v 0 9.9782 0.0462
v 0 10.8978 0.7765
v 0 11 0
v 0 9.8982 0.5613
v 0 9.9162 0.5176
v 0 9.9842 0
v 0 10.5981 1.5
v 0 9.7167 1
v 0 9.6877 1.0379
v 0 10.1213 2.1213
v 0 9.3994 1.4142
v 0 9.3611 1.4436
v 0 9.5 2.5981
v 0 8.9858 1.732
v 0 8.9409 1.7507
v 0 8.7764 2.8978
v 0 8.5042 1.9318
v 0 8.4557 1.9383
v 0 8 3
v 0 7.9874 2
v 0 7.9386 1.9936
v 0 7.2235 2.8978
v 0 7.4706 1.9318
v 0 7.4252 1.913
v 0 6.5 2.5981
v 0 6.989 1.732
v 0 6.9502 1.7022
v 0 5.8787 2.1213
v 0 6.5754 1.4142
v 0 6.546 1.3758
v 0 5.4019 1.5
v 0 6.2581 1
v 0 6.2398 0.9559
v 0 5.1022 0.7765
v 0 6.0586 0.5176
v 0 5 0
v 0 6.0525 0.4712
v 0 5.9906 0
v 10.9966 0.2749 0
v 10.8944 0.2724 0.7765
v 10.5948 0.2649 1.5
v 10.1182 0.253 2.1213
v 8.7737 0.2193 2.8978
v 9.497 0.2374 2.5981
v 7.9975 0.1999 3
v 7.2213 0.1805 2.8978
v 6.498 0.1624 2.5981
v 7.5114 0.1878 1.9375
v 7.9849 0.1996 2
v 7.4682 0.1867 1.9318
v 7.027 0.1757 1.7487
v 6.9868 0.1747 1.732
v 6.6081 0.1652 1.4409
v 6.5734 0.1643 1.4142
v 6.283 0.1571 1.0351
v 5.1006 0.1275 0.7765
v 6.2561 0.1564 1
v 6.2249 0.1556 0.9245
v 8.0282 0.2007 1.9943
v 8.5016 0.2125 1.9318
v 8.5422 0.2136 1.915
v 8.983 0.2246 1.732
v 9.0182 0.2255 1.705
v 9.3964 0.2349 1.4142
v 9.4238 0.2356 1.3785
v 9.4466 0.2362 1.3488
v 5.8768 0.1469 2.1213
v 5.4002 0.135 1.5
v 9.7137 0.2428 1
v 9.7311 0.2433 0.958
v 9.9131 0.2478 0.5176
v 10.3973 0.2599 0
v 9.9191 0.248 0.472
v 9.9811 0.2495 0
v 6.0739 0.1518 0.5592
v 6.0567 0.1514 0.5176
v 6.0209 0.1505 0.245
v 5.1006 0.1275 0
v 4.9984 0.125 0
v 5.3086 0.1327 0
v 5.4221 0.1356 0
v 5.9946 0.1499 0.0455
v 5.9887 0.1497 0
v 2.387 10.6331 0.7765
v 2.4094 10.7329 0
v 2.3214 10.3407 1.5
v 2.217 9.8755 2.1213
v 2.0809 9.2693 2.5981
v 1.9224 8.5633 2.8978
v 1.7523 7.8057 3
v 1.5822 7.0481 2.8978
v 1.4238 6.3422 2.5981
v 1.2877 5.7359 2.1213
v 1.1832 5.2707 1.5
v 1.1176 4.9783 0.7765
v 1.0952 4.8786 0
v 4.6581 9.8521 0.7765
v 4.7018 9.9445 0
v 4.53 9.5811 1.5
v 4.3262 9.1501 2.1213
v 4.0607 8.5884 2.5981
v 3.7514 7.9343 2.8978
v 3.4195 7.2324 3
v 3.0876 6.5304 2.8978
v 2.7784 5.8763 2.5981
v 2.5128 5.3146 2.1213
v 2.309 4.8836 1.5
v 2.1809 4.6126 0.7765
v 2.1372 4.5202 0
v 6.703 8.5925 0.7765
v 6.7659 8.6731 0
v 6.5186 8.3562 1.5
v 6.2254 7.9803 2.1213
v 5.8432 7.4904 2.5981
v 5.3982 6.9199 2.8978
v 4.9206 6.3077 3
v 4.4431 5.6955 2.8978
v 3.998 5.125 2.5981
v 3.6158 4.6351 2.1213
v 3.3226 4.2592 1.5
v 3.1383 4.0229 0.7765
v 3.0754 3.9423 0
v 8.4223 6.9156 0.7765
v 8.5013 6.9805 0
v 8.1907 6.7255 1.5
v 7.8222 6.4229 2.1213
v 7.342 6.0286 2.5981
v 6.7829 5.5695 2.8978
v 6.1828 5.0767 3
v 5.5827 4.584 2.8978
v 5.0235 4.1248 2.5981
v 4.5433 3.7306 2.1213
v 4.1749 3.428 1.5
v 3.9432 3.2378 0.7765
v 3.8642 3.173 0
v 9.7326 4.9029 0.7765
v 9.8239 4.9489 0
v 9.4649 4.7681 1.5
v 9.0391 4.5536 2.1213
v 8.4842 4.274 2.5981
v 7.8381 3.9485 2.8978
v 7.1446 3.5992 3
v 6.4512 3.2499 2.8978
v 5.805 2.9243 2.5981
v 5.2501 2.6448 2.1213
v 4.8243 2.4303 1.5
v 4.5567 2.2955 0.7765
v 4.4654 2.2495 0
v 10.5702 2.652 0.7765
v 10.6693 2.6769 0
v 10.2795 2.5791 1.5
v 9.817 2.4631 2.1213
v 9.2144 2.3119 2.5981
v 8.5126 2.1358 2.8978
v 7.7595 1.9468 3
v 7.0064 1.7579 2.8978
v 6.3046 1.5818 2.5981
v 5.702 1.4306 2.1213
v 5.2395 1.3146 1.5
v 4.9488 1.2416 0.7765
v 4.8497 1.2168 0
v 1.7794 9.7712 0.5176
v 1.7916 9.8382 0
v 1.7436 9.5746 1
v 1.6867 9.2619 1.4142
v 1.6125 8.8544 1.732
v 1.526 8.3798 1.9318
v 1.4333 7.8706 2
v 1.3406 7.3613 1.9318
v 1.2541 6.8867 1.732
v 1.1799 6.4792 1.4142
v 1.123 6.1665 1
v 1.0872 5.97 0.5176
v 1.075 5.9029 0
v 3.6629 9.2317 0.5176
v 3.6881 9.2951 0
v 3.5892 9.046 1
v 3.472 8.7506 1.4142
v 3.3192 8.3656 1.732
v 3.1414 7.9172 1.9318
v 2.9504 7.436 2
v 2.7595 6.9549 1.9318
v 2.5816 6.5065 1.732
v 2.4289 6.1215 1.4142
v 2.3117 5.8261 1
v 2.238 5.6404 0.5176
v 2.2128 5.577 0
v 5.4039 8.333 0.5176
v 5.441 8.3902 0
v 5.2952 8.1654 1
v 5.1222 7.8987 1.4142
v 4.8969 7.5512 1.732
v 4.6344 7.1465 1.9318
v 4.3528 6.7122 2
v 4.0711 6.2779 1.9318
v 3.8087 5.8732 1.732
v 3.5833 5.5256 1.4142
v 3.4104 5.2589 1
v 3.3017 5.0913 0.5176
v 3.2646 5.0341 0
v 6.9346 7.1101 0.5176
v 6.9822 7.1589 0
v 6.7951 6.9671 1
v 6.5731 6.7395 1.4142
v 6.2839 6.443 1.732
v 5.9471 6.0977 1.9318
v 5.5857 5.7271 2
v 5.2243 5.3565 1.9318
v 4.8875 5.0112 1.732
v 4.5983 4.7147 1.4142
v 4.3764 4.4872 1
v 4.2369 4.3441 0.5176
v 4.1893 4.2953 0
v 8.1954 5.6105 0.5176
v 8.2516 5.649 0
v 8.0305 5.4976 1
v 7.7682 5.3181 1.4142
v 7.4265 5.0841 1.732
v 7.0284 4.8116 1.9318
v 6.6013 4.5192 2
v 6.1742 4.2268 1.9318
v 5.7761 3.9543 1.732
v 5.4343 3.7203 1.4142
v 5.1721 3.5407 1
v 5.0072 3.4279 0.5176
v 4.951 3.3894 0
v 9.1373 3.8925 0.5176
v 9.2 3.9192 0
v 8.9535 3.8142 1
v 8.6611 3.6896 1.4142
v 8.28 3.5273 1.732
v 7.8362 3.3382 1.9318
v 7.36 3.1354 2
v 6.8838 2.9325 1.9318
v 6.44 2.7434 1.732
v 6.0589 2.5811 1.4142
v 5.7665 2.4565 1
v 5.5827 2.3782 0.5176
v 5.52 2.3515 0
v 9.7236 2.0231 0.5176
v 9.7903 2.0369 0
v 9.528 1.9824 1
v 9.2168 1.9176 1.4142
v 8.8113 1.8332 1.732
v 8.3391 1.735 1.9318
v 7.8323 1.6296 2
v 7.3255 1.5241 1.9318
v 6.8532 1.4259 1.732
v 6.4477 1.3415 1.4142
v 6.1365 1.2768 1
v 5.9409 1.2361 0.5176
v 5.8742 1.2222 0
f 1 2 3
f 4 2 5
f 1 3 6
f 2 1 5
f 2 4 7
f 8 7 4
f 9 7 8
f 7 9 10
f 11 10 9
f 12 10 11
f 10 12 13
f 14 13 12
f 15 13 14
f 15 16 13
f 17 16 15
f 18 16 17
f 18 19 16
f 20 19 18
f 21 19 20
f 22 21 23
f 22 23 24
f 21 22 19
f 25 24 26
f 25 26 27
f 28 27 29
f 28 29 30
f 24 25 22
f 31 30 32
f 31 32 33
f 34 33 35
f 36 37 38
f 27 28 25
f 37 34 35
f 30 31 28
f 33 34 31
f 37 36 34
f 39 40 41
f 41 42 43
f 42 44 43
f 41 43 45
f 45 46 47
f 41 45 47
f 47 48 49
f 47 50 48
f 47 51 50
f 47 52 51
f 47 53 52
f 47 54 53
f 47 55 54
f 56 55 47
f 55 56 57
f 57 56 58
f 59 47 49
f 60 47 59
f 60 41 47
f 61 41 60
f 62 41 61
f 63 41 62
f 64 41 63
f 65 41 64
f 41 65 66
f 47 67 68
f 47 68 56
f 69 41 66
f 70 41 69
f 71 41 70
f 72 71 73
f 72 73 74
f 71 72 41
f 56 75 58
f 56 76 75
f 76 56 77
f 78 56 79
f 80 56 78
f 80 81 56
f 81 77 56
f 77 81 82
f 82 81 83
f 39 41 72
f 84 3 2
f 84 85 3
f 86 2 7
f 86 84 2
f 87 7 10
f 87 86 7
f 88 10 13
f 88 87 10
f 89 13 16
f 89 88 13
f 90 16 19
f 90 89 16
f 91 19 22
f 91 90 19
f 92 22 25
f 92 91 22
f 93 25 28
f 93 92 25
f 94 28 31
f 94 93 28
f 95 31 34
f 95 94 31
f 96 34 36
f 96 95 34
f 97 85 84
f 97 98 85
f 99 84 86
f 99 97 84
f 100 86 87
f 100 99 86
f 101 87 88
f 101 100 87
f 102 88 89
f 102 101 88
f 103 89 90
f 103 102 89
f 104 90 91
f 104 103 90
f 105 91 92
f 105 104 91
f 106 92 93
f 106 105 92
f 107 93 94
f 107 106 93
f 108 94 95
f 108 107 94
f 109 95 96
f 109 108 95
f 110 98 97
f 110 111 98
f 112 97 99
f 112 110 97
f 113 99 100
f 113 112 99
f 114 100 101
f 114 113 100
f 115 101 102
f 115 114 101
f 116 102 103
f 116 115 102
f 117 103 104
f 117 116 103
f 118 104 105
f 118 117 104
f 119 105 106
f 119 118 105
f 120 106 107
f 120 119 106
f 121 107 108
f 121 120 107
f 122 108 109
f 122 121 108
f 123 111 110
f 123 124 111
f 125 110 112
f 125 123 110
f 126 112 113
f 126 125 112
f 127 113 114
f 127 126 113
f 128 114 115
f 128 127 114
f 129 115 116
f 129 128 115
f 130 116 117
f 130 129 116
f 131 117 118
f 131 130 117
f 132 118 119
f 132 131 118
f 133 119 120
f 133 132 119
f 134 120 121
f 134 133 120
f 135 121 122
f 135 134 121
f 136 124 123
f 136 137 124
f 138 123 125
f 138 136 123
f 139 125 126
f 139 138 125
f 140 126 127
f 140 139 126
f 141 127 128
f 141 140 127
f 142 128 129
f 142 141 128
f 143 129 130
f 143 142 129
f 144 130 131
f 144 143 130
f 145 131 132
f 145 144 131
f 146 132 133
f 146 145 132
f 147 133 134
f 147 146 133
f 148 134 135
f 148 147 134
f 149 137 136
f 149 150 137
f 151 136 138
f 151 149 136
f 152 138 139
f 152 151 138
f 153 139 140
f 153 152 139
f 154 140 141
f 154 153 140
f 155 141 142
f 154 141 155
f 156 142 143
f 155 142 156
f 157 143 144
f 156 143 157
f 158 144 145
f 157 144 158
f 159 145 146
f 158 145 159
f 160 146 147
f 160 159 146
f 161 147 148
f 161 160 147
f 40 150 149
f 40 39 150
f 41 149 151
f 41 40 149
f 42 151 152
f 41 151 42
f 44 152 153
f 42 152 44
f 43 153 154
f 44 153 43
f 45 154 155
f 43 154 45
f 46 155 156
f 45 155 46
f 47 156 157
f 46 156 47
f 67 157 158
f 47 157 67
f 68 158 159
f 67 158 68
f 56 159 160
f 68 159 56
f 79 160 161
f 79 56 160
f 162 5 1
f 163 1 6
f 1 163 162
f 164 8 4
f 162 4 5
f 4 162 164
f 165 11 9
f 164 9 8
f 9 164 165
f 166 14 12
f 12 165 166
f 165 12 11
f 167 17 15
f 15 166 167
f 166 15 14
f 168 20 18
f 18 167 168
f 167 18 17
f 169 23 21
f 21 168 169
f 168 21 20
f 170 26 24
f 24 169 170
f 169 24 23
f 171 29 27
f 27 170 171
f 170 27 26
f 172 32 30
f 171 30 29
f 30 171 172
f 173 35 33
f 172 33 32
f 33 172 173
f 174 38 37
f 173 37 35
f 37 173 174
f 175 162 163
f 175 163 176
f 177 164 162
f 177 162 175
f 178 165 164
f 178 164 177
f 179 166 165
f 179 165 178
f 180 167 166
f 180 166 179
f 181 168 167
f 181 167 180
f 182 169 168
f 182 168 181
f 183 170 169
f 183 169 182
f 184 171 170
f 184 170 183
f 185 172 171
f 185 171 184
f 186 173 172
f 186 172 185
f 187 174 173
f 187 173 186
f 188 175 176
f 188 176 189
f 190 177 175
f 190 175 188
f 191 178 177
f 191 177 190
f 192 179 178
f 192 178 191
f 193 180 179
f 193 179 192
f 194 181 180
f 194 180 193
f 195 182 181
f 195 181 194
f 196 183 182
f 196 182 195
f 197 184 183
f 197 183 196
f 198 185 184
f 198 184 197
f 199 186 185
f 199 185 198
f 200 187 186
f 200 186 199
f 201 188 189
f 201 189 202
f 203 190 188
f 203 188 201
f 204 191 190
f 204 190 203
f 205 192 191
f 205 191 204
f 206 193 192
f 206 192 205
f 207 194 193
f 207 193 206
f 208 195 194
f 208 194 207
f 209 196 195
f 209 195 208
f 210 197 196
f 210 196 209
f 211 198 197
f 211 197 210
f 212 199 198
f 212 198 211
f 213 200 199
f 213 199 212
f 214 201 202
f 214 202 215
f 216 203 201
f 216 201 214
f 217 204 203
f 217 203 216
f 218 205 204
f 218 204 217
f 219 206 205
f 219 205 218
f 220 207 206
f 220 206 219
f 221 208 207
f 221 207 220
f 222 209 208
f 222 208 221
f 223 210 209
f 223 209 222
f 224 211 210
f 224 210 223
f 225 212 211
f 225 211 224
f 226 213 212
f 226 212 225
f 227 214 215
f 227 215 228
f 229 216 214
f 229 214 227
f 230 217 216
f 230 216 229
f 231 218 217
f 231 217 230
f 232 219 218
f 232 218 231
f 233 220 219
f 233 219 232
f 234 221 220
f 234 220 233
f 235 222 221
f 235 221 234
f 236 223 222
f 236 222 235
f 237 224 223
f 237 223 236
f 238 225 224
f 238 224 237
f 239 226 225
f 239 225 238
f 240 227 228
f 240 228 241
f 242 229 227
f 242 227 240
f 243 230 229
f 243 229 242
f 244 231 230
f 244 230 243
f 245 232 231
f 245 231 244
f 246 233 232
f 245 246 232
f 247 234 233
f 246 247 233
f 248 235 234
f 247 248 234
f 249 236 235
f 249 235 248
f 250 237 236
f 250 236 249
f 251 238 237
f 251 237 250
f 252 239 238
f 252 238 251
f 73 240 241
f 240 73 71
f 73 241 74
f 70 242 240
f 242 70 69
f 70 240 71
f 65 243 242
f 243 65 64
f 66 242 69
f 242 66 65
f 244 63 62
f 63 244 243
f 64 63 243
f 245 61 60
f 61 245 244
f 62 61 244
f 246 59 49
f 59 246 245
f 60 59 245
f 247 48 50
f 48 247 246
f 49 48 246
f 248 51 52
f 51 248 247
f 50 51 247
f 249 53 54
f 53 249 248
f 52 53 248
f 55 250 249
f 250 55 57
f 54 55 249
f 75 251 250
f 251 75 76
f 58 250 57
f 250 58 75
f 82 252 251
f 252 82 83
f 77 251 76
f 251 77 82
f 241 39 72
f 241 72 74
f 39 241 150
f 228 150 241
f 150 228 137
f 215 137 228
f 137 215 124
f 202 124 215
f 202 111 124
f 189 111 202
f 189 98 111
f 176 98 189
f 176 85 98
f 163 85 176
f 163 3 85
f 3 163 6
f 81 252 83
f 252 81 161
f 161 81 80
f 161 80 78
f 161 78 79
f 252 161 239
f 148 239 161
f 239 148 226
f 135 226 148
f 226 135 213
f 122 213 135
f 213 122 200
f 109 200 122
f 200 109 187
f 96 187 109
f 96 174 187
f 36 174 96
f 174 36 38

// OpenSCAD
// file: ../build_environments.scad
// build_environments.scad: modules to build level sections
//

module pool(diameter=10.0, wall_height=2.0, step_width=3.0, connections=[])
{
    difference() {
        union() {
        difference() {
            cylinder(h=0.5,r1=diameter+step_width,r2=diameter+step_width,$fn=48);
            translate([0,0,-0.1])
                cylinder(h=0.7,r1=diameter,r2=diameter,$fn=48);
        }
        difference() {
            cylinder(h=wall_height,r1=diameter+step_width+1.0,r2=diameter+step_width+1.0,$fn=48);
            translate([0,0,-0.1])
                cylinder(h=wall_height+0.2,r1=diameter+step_width,r2=diameter+step_width,$fn=48);
        }
        }
    
        for (c = connections)
        {
            rotate([0,90,0]) {
                angle = atan2(c[1],c[0]);
                rotate([-angle,0,0]) {
                    cylinder(h=diameter+5.0,r1=c[2],r2=c[2],$fn=48);
                }
            }
        }
    }
}

module straight(length=10.0, width=2.0, dy1=0.0, dy2=0.0, dz=0.0)
{
    dims = [0, 0, 0, 0, 0, (dz/length)];
    matrix = [
        [ 1, dims[0], dims[1], 0 ],
        [ dims[2], 1, dims[4], 0 ],
        [ dims[5], dims[3], 1, 0 ],
        [ 0, 0, 0, 1 ]
    ];
    multmatrix(matrix)
    difference() {
        translate([dy1,0,0])
        union() {
            rotate([0,90,0]) {
                difference() {
                    cylinder(h=(length-dy1-dy2),r1=width+1.0,r2=width+1.0,$fn=24);
                    translate([0,0,-0.1])
                        cylinder(h=(length-dy1-dy2+0.2),r1=width,r2=width,$fn=24);
                }
                difference() {
                    cylinder(h=1.0,r1=width+2.0,r2=width+2.0,$fn=24);
                    translate([0,0,-0.1])
                        cylinder(h=1.2,r1=width,r2=width,$fn=24);
                }
                translate([0,0,(length-dy1-dy2)-1.0]) {
                    difference() {
                        cylinder(h=1.0,r1=width+2.0,r2=width+2.0,$fn=24);
                        translate([0,0,-0.1])
                            cylinder(h=1.2,r1=width,r2=width,$fn=24);
                    }
                }
            }
        }
        translate([0,0,-(2*width+4.0)/2])
            cube([3*length,3*length,2*width+4.0],center=true);
    }
}

module curve(p0=[0,0], center=[0,0], dir=1, angle=0.0, width=2.0)
{
    radius = sqrt((p0[0]-center[0])*(p0[0]-center[0]) + (p0[1]-center[1])*(p0[1]-center[1]));
    if (dir == 0) {
        difference() {
            rotate([0,0,-90])
            difference() {
                rotate_extrude(angle = angle, convexity = 10, $fn=32)
                    translate([radius, 0, 0])
                        circle(r = width+1.0,$fn=24);
                rotate([0,0,-1.0])
                    rotate_extrude(angle = angle+2.0, convexity = 10, $fn=32)
                        translate([radius, 0, 0])
                            circle(r = width,$fn=24);
            }
            translate([0,0,-(2*width+4.0)/2])
                cube([5*radius,5*radius,2*width+4.0],center=true);
        }
    }
    else {
        difference() {
            rotate([0,0,90])
            difference() {
                rotate_extrude(angle = -angle, convexity = 10, $fn=32)
                    translate([radius, 0, 0])
                        circle(r = width+1.0,$fn=24);
                rotate([0,0,1.0])
                    rotate_extrude(angle = -angle-2.0, convexity = 10, $fn=32)
                        translate([radius, 0, 0])
                            circle(r = width,$fn=24);
            }
            translate([0,0,-(2*width+4.0)/2])
                cube([5*radius,5*radius,2*width+4.0],center=true);
        }
    }

}

// test pool
//pool(diameter=12.0000, wall_height=3.0000, step_width=3.0000, connections=[[0.0000,-26.0000,2.0000], [23.6074,0.0000,2.0000]]);

// test straight, slope
//straight(length=26.0000, width=2.0000, dy1=11.8322, dy2=6.7082, dz=0.0000);
//straight(length=29.1549, width=12.0000, dy1=0.0000, dy2=0.0000, dz=-15.0000);

// test curve
//curve(p0=[23.6074, 0.0000], center=[23.6074, 5.0000], dir=0, angle=60.1011, width=2.0000);
//curve(p0=[33.6426, 12.4219], center=[37.9771, 9.9295], dir=1, angle=120.4627, width=2.0000);
// main file
use <../build_environments.scad>;
curve(p0=[-126.1999, 66.3050], center=[-126.0000, 74.3025], dir=1, angle=88.5679, width=2.0000);
